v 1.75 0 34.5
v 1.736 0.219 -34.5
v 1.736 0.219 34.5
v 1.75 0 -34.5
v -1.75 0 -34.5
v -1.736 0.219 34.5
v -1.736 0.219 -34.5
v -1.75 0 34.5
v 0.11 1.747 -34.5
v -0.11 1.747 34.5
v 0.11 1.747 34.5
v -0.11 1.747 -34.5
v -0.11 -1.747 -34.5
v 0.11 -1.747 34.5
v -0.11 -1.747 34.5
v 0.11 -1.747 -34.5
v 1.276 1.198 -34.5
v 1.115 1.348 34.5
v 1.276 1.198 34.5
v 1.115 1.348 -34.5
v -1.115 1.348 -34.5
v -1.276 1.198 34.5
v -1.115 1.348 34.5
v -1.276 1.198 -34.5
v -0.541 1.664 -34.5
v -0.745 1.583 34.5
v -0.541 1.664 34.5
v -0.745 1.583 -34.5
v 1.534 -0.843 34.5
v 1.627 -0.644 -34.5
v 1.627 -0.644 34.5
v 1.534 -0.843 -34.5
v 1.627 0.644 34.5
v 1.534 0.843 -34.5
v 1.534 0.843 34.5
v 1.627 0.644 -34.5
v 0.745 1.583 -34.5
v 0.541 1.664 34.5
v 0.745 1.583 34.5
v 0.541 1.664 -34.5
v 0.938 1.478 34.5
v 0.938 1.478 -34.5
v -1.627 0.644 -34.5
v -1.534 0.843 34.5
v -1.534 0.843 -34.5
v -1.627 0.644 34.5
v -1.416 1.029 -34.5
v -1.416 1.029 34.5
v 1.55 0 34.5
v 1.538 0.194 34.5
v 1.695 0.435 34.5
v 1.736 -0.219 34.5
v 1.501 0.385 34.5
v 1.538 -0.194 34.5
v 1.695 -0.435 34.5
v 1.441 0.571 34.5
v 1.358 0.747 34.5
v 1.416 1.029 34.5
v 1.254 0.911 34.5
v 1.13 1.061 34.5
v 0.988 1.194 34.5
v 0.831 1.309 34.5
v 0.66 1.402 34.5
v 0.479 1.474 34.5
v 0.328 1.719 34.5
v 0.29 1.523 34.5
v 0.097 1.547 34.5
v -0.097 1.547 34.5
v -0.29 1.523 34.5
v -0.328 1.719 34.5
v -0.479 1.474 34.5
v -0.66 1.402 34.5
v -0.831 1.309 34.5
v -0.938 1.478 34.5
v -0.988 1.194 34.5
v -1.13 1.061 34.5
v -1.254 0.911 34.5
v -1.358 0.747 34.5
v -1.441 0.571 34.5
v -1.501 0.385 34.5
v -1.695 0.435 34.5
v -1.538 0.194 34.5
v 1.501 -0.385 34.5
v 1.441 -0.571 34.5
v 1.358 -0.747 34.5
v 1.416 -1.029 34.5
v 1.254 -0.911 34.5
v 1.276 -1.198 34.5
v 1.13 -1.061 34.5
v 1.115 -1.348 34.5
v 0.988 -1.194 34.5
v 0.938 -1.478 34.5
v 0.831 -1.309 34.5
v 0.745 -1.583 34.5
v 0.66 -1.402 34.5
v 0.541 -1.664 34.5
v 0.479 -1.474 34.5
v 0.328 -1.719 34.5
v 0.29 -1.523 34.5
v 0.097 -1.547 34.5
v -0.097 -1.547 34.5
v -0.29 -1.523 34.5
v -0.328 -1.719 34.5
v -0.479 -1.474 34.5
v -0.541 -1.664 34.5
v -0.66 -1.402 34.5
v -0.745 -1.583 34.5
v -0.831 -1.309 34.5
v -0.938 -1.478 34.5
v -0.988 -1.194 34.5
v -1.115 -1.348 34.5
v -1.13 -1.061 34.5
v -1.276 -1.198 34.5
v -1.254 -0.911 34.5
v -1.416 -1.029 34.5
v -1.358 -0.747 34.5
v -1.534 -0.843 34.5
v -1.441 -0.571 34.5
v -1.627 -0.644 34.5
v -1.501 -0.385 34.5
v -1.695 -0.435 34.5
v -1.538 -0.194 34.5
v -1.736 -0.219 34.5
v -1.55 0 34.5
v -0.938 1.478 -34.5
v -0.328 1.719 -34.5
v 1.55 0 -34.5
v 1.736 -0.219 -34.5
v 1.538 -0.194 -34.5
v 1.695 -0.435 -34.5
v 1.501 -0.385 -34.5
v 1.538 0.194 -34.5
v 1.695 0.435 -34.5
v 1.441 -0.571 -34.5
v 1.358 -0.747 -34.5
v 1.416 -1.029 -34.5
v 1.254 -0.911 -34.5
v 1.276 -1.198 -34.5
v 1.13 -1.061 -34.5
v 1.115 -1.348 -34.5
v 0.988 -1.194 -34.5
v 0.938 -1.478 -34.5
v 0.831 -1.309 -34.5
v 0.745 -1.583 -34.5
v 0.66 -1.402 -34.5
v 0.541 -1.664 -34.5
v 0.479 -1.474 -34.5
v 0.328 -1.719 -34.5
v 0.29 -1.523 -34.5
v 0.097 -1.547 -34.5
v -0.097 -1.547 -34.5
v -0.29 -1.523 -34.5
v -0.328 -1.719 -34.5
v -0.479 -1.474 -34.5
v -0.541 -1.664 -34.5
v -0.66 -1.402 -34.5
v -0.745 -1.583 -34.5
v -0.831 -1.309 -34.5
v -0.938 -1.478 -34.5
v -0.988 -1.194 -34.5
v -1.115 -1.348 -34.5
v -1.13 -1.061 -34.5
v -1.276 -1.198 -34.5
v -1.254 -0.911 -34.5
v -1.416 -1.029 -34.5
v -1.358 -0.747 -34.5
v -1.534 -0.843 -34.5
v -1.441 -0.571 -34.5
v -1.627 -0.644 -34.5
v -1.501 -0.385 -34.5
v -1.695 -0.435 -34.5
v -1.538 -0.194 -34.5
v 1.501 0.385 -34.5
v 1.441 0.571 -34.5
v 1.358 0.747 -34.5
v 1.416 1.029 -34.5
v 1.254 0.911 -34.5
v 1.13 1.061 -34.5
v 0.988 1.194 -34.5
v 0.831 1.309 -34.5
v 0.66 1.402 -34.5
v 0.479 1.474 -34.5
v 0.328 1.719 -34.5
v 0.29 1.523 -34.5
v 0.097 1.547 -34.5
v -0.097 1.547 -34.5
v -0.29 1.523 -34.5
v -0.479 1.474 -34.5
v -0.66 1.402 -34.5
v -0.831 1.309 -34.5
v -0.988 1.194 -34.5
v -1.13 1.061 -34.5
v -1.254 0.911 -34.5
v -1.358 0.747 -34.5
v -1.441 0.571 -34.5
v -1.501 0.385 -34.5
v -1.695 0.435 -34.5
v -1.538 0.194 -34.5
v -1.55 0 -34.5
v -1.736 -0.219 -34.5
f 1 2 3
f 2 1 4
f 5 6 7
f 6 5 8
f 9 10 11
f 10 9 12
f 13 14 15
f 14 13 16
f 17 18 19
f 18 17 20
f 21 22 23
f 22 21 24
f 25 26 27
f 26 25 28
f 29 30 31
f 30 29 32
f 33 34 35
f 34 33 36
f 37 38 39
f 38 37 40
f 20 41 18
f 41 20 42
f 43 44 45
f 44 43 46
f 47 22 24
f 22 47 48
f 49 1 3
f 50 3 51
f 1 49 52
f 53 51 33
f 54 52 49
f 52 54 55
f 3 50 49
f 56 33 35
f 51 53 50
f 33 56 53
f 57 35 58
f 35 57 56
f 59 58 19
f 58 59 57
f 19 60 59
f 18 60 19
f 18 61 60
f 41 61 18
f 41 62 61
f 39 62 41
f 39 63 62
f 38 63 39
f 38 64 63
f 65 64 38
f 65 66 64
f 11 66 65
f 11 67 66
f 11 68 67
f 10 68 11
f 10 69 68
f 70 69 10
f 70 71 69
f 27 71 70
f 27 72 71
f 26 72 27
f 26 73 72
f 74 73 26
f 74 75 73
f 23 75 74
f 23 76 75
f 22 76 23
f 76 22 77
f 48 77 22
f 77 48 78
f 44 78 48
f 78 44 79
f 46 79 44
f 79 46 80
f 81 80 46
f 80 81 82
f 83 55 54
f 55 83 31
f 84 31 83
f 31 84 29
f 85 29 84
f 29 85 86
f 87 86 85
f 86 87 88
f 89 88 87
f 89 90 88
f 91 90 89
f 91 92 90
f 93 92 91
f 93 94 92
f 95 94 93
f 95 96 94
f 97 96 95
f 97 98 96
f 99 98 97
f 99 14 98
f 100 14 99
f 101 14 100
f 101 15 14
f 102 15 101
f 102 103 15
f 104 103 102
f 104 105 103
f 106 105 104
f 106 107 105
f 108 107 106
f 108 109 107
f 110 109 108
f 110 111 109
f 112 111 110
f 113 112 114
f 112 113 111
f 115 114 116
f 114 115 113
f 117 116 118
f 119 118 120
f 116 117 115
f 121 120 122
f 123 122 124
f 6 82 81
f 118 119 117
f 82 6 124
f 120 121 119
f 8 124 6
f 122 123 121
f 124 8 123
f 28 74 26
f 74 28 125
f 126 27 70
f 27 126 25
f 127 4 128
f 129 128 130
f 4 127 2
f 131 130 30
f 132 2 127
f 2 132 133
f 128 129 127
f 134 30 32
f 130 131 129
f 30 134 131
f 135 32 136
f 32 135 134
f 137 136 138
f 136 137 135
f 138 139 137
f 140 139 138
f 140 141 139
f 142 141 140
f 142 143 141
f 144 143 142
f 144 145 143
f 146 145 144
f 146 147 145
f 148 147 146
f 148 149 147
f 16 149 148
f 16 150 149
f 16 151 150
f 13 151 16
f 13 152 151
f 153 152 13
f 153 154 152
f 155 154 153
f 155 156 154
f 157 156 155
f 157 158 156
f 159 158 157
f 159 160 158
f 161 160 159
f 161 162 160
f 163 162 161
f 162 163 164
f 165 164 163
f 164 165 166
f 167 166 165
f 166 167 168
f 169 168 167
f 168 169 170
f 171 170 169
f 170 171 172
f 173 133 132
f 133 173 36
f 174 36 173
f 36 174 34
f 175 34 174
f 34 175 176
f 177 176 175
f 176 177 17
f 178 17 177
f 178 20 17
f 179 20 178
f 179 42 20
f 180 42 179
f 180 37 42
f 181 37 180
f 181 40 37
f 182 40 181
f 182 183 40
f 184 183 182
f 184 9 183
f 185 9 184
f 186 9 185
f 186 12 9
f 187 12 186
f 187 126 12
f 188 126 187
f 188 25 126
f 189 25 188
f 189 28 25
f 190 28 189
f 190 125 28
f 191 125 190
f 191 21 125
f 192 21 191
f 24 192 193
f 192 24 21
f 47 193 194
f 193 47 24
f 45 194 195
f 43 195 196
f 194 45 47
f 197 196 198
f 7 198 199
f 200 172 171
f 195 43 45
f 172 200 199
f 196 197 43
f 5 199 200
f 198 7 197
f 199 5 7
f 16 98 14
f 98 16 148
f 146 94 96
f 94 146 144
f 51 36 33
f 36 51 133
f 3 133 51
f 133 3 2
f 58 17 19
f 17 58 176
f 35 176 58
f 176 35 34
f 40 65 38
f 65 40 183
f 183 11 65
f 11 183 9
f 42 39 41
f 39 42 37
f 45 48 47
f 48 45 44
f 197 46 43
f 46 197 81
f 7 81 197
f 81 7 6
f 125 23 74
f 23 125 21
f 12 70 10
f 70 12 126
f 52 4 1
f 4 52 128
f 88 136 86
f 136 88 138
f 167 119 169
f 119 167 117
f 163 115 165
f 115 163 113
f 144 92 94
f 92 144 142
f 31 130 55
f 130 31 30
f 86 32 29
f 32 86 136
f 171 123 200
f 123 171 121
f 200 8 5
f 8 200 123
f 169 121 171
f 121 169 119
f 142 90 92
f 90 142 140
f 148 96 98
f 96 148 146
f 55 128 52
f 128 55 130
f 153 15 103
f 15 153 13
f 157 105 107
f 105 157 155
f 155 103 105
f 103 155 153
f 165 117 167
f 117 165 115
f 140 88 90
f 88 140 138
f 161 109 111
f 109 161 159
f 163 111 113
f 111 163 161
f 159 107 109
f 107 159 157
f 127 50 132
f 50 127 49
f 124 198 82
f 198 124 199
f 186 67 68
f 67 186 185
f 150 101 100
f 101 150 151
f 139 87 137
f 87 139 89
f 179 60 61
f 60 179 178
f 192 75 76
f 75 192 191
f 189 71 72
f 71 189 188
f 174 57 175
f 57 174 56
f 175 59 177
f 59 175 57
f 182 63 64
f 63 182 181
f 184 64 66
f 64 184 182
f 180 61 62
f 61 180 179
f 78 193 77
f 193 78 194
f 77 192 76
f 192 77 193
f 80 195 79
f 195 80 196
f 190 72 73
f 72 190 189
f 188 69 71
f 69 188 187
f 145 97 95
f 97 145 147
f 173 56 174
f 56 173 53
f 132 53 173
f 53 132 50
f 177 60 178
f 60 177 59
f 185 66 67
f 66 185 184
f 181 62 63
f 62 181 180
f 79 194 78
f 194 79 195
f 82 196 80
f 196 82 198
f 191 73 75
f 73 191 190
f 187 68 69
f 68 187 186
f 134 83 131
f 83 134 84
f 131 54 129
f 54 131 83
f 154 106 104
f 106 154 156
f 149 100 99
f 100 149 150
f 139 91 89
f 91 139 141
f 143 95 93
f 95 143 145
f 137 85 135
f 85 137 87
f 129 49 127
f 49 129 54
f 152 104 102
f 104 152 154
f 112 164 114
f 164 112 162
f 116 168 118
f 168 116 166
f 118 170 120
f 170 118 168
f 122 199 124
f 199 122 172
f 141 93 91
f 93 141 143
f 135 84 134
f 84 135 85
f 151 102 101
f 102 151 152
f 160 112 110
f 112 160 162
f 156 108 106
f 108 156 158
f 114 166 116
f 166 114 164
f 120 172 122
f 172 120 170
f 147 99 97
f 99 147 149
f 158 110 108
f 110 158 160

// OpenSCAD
$fn = 50;


difference() {
	union() {
		translate(v = [0, 0, -34.5000000000]) {
			cylinder(h = 69, r = 1.7500000000);
		}
	}
	union() {
		translate(v = [0, 0, -100.0000000000]) {
			cylinder(h = 200, r = 1.5500000000);
		}
	}
}
